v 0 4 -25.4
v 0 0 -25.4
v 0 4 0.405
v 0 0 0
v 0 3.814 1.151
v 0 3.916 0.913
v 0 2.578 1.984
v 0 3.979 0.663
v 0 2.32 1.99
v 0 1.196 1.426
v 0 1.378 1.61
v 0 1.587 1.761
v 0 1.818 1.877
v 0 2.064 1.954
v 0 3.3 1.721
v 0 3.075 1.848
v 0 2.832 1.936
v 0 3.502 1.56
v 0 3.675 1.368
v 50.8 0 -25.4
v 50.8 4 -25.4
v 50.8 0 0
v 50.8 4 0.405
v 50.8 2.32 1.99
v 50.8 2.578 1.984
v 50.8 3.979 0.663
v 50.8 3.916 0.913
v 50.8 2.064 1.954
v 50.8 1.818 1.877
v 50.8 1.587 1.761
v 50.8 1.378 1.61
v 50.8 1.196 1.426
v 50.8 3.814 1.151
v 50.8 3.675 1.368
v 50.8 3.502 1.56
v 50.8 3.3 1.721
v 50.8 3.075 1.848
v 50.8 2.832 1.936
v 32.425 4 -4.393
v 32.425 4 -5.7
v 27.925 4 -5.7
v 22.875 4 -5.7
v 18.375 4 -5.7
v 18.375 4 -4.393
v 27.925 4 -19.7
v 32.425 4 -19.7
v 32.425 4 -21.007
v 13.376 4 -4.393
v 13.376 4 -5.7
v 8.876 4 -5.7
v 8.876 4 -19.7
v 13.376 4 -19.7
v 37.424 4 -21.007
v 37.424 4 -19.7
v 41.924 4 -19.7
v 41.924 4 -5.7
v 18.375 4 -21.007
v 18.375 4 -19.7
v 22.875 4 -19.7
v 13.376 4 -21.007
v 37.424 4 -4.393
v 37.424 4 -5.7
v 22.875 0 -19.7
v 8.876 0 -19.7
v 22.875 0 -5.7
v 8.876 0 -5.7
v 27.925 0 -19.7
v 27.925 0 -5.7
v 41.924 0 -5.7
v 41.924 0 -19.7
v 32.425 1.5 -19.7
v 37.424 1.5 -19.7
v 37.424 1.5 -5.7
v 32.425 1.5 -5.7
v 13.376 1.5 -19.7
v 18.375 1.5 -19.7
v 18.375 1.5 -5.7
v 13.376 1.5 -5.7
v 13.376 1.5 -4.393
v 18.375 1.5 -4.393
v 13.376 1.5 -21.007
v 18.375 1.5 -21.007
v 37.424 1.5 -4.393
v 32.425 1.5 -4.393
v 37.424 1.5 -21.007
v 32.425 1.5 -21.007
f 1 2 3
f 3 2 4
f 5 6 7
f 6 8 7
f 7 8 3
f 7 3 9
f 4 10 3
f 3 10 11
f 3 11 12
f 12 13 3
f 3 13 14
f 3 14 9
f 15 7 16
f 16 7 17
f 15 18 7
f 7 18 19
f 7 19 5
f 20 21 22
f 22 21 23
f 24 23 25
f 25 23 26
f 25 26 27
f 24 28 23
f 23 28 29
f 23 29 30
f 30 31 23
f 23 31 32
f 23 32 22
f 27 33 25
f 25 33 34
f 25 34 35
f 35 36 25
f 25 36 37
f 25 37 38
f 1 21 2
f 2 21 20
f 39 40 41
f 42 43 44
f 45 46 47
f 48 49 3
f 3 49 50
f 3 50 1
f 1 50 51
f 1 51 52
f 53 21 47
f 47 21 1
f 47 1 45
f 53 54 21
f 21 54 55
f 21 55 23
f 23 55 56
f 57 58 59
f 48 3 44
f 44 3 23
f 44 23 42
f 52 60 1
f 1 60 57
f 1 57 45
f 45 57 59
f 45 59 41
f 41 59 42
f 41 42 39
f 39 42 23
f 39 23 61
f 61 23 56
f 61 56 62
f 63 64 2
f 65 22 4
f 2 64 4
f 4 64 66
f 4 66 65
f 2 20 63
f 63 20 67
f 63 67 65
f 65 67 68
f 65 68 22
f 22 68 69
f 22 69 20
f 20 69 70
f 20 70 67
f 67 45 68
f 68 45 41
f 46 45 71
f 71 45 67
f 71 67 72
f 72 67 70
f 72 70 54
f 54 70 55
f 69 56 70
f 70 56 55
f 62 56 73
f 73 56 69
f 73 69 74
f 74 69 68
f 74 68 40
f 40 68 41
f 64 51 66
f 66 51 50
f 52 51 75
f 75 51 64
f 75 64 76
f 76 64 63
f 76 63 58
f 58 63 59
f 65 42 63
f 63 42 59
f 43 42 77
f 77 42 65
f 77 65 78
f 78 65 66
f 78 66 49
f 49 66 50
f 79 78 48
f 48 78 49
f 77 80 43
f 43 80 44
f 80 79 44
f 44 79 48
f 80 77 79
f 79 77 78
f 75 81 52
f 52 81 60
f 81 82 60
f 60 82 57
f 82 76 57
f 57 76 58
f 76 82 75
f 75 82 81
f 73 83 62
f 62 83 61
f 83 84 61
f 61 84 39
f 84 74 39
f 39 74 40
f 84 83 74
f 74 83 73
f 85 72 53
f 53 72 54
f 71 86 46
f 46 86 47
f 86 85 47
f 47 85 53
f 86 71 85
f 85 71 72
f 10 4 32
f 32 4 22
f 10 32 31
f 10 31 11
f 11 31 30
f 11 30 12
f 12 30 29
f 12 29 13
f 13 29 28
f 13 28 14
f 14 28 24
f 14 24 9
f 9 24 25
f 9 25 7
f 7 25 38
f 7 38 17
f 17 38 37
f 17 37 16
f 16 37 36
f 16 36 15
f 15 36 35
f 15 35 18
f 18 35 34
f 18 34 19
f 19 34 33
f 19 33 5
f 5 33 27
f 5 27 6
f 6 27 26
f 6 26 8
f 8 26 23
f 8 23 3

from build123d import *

# Parameters (mm, degrees)
SKETCH1_W               = 50.8
SKETCH1_H               = 25.4
BOSS_EXTRUDE1_DEPTH     = 3.999992
CUT_EXTRUDE1_DEPTH      = 57.936806514
CUT_EXTRUDE1_DEPTH_BACK = 57.936806514
SKETCH2_W               = 13.999972
SKETCH2_H               = 13.999972
SKETCH3_W               = 4.998974
SKETCH3_H               = 1.307084
CUT_EXTRUDE2_DEPTH      = 2.500122
BOSS_EXTRUDE2_DEPTH     = 50.8
FILLET1_R               = 1.5875


with BuildPart() as part:
    # Sketch1 → Boss-Extrude1 (new body)
    with BuildSketch(Plane(origin=(0, 0, 0), x_dir=(1, 0, 0), z_dir=(0, 1, 0))):
        with Locations((25.4, 12.7)):
            Rectangle(SKETCH1_W, SKETCH1_H)
    extrude(amount=BOSS_EXTRUDE1_DEPTH)

    # Sketch2 → Cut-Extrude1 (cut, two sides: drawn at the far end of the back side and taken through both)
    with BuildSketch(Plane(origin=(0, 3.999992, 0), x_dir=(1, 0, 0), z_dir=(0, 1, 0)).offset(-CUT_EXTRUDE1_DEPTH_BACK)):
        with Locations((15.875508, 12.7)):
            Rectangle(SKETCH2_W, SKETCH2_H)
        with Locations((34.924492, 12.7)):
            Rectangle(SKETCH2_W, SKETCH2_H)
    extrude(amount=CUT_EXTRUDE1_DEPTH + CUT_EXTRUDE1_DEPTH_BACK, mode=Mode.SUBTRACT)

    # Sketch3 → Cut-Extrude2 (cut)
    with BuildSketch(Plane(origin=(0, 3.999992, 0), x_dir=(1, 0, 0), z_dir=(0, 1, 0))):
        with Locations((15.875508, 20.353528)):
            Rectangle(SKETCH3_W, SKETCH3_H)
        with Locations((34.924492, 20.353528)):
            Rectangle(SKETCH3_W, SKETCH3_H)
        with Locations((34.924492, 5.046472)):
            Rectangle(SKETCH3_W, SKETCH3_H)
        with Locations((15.875508, 5.046472)):
            Rectangle(SKETCH3_W, SKETCH3_H)
    extrude(amount=-CUT_EXTRUDE2_DEPTH, mode=Mode.SUBTRACT)

    # Sketch5 → Boss-Extrude2 (add)
    with BuildSketch(Plane.ZY):
        Polygon((0, 0), (4.767004836, 3.999992), (0, 3.999992), align=None)
    extrude(amount=-BOSS_EXTRUDE2_DEPTH)

    # Fillet1
    fillet1_edges = [part.edges().sort_by_distance(p)[0] for p in [
        (25.4, 3.999992, 4.767004836),
    ]]
    fillet(fillet1_edges, radius=FILLET1_R)


solid = part.part
